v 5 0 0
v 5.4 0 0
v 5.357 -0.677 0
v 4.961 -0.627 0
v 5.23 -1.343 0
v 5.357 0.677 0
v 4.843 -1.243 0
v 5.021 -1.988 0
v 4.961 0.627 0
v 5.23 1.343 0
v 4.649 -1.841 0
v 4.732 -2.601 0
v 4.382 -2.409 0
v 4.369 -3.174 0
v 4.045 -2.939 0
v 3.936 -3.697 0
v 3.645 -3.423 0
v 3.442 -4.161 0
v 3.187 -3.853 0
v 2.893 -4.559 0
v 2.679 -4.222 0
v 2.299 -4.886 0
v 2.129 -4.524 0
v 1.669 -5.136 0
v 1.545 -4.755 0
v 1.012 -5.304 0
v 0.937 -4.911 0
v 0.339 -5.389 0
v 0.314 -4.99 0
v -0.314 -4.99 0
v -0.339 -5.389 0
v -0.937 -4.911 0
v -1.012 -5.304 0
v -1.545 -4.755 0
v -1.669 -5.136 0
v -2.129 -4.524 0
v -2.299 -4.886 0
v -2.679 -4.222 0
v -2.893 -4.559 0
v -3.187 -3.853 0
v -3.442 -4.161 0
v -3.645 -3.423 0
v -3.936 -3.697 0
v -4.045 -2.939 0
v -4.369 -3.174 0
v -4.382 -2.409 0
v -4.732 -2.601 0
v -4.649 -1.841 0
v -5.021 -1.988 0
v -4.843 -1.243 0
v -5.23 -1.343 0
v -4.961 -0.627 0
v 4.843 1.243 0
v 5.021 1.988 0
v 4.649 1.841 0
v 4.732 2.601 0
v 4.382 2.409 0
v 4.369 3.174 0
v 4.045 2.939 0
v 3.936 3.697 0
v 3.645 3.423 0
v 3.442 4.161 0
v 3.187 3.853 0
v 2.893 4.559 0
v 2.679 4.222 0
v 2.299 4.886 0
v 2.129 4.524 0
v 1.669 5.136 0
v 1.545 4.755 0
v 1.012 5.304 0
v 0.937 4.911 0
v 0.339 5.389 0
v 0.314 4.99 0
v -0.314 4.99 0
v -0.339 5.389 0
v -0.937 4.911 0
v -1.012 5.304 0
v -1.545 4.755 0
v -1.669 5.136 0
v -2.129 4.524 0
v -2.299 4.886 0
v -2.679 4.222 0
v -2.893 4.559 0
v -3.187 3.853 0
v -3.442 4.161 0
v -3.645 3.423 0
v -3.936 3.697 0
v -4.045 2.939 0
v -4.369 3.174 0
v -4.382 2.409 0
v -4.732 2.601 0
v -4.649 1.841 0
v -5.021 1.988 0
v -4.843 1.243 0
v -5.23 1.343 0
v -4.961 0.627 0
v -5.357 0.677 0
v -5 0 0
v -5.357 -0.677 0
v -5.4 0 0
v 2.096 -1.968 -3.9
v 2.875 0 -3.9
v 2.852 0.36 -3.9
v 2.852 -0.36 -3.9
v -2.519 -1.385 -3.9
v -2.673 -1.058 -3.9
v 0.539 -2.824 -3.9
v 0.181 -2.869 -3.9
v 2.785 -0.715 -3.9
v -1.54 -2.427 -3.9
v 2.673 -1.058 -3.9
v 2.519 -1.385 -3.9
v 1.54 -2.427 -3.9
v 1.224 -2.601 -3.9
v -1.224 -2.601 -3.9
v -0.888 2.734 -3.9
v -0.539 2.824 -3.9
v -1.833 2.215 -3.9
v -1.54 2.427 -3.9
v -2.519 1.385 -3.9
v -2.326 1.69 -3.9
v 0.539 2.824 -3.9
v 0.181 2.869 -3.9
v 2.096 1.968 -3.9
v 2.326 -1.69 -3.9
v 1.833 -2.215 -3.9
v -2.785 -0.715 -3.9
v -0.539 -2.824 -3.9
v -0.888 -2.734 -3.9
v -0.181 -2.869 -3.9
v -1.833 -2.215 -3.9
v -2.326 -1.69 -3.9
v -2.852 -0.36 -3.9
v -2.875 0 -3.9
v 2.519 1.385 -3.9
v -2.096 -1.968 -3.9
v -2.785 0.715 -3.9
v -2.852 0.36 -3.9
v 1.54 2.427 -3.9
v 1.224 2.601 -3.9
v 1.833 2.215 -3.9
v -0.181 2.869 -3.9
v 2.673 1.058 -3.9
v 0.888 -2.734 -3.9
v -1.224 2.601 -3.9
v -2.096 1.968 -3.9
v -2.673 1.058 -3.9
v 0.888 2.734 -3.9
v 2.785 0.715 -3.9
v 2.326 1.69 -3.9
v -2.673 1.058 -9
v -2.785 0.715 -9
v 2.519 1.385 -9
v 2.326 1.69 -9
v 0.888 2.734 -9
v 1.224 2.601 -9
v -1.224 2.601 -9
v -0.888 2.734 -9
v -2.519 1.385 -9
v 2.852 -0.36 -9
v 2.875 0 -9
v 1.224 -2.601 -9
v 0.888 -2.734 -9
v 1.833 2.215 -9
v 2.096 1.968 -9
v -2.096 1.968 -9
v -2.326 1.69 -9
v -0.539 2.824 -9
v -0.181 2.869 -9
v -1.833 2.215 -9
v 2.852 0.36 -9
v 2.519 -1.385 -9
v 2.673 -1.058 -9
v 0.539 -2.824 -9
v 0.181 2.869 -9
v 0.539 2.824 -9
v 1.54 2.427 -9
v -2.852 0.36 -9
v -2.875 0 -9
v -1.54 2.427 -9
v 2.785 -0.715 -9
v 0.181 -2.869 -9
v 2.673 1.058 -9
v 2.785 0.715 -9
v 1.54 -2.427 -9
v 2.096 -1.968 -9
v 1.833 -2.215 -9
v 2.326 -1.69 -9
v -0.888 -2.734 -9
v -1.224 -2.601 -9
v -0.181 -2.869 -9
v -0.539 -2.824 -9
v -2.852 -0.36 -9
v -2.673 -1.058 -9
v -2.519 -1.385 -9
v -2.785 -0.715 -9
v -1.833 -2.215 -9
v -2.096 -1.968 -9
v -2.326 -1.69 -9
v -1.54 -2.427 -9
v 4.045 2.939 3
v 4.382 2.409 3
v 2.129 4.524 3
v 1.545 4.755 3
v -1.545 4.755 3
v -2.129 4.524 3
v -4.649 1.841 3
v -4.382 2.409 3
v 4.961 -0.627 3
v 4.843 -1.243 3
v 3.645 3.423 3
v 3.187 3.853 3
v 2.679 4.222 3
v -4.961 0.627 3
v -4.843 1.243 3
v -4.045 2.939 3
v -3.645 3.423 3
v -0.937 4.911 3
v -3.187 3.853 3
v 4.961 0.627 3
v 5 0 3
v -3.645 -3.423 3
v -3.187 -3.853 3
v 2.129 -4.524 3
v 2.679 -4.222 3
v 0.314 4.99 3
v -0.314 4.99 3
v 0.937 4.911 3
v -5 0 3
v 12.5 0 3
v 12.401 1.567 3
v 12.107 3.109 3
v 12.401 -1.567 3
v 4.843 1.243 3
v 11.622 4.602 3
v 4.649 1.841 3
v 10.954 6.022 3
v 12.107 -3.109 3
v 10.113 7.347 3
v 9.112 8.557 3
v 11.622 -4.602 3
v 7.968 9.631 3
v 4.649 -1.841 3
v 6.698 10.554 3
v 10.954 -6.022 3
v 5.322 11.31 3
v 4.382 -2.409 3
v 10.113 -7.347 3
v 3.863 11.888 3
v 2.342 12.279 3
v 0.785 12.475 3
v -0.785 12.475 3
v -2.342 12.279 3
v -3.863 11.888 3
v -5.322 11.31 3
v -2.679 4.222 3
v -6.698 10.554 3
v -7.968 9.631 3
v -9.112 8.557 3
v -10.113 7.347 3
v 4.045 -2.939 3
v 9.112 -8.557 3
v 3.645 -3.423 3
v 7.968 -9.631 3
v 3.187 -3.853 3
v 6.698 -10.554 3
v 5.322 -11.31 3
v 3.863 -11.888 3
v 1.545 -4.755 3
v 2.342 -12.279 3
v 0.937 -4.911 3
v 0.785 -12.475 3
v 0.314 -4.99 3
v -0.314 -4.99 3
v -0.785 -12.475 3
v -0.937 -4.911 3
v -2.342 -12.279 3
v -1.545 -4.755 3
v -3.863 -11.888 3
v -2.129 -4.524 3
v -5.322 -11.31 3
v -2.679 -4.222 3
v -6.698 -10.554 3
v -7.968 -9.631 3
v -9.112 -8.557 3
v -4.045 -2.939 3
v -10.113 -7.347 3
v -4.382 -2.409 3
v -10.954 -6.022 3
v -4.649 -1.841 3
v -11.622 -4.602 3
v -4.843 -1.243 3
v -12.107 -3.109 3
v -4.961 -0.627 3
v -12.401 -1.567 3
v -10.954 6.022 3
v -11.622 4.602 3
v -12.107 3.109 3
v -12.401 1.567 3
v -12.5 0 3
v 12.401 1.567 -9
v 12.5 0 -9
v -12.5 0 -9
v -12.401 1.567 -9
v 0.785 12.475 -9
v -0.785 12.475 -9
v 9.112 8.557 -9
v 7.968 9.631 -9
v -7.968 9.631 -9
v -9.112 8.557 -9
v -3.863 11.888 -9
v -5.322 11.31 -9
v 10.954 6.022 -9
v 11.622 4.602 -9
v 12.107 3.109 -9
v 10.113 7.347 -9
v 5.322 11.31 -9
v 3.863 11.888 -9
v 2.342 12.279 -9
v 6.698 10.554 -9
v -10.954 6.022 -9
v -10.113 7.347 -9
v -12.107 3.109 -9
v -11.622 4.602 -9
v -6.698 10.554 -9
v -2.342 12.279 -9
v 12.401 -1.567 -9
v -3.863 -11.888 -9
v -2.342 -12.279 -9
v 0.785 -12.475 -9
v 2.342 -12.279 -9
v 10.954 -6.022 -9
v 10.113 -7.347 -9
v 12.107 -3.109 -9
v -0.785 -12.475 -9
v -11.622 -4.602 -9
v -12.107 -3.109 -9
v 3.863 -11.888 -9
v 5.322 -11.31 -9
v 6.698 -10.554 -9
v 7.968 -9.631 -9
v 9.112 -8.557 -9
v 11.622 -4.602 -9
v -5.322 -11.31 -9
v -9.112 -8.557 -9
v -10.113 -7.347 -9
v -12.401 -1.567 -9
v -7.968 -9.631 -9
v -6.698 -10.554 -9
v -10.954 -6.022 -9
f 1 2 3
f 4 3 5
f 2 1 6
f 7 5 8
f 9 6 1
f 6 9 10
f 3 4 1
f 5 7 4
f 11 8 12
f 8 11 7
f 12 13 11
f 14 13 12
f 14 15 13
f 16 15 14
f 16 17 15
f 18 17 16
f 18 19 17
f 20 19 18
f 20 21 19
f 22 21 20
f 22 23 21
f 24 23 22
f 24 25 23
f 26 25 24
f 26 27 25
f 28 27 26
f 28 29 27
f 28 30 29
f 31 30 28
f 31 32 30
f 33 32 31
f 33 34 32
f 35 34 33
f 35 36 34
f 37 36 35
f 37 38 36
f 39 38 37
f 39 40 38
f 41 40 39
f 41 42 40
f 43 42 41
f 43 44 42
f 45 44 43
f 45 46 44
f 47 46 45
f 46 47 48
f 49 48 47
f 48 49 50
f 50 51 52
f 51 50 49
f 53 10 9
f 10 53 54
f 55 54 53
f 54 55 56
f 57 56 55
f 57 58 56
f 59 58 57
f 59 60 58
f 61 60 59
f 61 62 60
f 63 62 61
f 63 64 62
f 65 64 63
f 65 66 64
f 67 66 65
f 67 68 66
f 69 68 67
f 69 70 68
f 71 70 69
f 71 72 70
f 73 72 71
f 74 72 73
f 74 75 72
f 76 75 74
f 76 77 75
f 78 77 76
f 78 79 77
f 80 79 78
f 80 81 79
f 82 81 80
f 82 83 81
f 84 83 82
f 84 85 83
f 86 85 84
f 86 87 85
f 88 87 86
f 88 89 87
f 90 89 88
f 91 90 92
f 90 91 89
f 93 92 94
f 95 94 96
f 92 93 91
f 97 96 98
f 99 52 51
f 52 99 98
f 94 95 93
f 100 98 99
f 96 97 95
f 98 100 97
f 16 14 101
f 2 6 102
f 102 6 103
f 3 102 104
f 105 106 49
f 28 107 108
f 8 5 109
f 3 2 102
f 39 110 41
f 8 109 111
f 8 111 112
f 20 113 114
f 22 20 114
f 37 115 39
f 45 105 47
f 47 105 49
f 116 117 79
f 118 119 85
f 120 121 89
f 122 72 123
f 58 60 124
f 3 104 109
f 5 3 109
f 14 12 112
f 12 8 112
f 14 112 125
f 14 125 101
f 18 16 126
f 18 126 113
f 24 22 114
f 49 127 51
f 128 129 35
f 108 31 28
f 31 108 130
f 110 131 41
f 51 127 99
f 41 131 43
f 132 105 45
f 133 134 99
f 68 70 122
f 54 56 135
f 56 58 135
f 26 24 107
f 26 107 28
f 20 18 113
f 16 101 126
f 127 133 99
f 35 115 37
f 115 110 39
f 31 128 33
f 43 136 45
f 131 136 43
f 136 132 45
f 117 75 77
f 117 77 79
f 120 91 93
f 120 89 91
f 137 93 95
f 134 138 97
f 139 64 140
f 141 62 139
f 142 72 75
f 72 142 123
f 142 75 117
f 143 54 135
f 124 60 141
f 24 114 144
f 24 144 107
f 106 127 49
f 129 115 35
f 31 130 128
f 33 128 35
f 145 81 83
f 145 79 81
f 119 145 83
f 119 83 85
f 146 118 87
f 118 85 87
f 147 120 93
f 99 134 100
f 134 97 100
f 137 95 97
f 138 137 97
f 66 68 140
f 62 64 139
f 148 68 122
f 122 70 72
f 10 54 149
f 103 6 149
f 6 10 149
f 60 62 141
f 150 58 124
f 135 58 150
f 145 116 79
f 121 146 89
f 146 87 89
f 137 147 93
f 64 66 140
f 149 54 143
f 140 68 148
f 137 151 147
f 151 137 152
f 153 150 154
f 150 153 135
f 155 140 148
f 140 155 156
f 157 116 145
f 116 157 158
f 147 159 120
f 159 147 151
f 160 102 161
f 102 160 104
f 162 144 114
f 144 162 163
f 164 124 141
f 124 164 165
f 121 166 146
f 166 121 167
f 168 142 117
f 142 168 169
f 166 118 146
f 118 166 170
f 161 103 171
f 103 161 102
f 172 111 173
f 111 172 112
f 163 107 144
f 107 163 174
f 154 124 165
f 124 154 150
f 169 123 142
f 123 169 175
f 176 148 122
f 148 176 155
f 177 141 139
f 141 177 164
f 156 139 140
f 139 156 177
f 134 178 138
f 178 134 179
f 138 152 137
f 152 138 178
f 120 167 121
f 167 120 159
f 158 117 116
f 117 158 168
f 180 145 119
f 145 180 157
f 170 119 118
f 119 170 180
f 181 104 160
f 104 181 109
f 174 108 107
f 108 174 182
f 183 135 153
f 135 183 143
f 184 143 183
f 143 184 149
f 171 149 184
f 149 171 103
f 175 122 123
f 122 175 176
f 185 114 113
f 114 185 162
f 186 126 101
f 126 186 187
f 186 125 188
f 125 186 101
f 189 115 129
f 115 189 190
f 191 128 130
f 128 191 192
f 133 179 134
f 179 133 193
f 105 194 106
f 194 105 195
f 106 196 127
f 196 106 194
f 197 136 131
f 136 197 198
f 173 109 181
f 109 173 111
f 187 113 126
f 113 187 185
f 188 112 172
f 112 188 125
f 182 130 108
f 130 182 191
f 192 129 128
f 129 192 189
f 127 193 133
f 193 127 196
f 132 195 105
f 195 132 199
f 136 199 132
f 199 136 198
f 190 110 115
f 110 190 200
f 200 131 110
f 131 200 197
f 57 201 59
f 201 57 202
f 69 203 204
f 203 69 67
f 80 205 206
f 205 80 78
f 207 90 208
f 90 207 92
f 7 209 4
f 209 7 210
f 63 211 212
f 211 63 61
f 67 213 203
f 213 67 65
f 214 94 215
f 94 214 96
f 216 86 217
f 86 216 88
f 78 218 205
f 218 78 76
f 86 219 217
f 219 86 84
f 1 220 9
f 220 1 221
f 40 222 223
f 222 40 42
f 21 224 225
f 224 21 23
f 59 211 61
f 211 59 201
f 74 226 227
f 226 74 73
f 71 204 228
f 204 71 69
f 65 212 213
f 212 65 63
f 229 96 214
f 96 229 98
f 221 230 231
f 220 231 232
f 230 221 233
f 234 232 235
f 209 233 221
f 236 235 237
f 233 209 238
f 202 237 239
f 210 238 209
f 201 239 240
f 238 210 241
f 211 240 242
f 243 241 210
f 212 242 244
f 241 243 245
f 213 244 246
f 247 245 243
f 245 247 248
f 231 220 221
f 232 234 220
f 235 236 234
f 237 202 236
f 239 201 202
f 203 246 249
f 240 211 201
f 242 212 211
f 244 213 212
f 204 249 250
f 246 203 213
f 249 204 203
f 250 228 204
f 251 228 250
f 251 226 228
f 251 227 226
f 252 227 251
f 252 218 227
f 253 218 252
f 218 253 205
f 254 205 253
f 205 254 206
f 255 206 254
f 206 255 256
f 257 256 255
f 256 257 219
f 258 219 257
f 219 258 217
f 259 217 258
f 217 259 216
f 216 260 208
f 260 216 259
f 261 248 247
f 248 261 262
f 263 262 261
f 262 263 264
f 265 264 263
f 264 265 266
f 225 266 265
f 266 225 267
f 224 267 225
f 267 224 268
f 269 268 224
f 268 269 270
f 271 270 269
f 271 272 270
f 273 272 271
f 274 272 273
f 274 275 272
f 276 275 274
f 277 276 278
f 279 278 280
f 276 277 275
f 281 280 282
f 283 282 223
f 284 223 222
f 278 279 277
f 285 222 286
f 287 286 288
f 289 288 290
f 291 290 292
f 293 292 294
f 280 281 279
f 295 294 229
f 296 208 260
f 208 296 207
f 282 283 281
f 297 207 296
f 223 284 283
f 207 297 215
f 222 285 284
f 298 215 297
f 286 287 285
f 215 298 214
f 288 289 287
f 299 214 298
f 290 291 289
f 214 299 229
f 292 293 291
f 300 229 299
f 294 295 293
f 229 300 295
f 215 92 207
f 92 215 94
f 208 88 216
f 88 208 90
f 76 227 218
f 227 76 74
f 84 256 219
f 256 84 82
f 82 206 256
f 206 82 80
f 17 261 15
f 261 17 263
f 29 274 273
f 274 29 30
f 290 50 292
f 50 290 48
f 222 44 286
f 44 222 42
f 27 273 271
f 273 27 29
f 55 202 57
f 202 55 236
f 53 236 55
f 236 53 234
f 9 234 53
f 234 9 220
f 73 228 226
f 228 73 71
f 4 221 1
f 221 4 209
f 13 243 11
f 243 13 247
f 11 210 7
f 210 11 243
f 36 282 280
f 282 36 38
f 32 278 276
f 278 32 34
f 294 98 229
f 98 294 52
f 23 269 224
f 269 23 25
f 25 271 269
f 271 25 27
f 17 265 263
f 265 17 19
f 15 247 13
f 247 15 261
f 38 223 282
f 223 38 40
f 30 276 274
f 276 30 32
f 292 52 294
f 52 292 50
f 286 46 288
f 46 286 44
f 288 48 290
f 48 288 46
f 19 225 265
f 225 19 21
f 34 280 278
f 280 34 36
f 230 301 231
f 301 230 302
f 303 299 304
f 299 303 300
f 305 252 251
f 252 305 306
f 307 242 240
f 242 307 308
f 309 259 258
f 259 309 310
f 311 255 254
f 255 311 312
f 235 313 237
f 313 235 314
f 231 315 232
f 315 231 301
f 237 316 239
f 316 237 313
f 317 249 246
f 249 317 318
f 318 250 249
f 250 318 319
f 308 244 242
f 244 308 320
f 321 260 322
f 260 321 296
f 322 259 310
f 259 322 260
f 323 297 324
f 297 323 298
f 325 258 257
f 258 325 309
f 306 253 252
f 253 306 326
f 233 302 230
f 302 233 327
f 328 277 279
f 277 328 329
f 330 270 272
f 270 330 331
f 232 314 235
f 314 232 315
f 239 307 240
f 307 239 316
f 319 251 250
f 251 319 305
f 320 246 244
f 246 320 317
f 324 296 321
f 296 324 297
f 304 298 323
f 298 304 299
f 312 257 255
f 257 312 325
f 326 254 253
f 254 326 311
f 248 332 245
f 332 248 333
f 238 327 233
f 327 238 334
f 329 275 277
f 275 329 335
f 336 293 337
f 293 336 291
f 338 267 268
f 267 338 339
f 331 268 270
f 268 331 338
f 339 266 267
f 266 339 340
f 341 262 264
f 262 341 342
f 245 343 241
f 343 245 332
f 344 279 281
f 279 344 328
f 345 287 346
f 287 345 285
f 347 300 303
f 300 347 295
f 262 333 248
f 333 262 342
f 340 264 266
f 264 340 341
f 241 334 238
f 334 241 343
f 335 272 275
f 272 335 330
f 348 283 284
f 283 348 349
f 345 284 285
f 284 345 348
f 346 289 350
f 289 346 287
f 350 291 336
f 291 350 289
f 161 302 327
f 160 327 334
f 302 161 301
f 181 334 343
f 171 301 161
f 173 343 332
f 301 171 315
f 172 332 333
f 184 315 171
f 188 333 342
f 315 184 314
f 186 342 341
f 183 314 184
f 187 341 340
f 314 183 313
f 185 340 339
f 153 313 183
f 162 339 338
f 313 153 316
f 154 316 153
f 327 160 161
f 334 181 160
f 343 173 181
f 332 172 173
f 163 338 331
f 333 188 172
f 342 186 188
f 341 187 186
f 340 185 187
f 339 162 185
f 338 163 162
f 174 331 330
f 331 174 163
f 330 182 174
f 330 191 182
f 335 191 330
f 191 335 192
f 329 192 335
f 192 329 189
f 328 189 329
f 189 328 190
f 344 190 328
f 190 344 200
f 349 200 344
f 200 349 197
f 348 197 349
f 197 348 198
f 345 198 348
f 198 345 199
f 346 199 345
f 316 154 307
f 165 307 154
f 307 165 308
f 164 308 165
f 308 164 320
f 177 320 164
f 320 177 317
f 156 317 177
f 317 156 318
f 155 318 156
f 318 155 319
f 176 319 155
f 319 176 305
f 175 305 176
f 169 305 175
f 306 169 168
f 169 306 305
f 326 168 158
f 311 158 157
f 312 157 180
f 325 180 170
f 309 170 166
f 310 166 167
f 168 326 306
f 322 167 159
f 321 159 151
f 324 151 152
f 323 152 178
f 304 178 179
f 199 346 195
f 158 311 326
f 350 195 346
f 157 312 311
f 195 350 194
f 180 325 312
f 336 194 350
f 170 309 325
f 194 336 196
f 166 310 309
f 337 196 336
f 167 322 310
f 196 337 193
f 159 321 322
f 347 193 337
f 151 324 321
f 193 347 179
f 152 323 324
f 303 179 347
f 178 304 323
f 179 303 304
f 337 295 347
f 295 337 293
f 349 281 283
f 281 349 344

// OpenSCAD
$fn = 50;


difference() {
	union() {
		translate(v = [0, 0, -9.0000000000]) {
			cylinder(h = 12, r = 12.5000000000);
		}
	}
	union() {
		translate(v = [0, 0, 0]) {
			rotate(a = [0, 0, 0]) {
				difference() {
					union() {
						translate(v = [0, 0, -12.0000000000]) {
							cylinder(h = 12, r = 2.6000000000);
						}
						translate(v = [0, 0, -3.9000000000]) {
							cylinder(h = 3.9000000000, r1 = 2.8750000000, r2 = 5.4000000000);
						}
						translate(v = [0, 0, -12.0000000000]) {
							cylinder(h = 12, r = 2.8750000000);
						}
						translate(v = [0, 0, -12.0000000000]) {
							cylinder(h = 12, r = 2.6000000000);
						}
					}
					union();
				}
			}
		}
		#cylinder(h = 3, r = 5.0000000000);
	}
}
